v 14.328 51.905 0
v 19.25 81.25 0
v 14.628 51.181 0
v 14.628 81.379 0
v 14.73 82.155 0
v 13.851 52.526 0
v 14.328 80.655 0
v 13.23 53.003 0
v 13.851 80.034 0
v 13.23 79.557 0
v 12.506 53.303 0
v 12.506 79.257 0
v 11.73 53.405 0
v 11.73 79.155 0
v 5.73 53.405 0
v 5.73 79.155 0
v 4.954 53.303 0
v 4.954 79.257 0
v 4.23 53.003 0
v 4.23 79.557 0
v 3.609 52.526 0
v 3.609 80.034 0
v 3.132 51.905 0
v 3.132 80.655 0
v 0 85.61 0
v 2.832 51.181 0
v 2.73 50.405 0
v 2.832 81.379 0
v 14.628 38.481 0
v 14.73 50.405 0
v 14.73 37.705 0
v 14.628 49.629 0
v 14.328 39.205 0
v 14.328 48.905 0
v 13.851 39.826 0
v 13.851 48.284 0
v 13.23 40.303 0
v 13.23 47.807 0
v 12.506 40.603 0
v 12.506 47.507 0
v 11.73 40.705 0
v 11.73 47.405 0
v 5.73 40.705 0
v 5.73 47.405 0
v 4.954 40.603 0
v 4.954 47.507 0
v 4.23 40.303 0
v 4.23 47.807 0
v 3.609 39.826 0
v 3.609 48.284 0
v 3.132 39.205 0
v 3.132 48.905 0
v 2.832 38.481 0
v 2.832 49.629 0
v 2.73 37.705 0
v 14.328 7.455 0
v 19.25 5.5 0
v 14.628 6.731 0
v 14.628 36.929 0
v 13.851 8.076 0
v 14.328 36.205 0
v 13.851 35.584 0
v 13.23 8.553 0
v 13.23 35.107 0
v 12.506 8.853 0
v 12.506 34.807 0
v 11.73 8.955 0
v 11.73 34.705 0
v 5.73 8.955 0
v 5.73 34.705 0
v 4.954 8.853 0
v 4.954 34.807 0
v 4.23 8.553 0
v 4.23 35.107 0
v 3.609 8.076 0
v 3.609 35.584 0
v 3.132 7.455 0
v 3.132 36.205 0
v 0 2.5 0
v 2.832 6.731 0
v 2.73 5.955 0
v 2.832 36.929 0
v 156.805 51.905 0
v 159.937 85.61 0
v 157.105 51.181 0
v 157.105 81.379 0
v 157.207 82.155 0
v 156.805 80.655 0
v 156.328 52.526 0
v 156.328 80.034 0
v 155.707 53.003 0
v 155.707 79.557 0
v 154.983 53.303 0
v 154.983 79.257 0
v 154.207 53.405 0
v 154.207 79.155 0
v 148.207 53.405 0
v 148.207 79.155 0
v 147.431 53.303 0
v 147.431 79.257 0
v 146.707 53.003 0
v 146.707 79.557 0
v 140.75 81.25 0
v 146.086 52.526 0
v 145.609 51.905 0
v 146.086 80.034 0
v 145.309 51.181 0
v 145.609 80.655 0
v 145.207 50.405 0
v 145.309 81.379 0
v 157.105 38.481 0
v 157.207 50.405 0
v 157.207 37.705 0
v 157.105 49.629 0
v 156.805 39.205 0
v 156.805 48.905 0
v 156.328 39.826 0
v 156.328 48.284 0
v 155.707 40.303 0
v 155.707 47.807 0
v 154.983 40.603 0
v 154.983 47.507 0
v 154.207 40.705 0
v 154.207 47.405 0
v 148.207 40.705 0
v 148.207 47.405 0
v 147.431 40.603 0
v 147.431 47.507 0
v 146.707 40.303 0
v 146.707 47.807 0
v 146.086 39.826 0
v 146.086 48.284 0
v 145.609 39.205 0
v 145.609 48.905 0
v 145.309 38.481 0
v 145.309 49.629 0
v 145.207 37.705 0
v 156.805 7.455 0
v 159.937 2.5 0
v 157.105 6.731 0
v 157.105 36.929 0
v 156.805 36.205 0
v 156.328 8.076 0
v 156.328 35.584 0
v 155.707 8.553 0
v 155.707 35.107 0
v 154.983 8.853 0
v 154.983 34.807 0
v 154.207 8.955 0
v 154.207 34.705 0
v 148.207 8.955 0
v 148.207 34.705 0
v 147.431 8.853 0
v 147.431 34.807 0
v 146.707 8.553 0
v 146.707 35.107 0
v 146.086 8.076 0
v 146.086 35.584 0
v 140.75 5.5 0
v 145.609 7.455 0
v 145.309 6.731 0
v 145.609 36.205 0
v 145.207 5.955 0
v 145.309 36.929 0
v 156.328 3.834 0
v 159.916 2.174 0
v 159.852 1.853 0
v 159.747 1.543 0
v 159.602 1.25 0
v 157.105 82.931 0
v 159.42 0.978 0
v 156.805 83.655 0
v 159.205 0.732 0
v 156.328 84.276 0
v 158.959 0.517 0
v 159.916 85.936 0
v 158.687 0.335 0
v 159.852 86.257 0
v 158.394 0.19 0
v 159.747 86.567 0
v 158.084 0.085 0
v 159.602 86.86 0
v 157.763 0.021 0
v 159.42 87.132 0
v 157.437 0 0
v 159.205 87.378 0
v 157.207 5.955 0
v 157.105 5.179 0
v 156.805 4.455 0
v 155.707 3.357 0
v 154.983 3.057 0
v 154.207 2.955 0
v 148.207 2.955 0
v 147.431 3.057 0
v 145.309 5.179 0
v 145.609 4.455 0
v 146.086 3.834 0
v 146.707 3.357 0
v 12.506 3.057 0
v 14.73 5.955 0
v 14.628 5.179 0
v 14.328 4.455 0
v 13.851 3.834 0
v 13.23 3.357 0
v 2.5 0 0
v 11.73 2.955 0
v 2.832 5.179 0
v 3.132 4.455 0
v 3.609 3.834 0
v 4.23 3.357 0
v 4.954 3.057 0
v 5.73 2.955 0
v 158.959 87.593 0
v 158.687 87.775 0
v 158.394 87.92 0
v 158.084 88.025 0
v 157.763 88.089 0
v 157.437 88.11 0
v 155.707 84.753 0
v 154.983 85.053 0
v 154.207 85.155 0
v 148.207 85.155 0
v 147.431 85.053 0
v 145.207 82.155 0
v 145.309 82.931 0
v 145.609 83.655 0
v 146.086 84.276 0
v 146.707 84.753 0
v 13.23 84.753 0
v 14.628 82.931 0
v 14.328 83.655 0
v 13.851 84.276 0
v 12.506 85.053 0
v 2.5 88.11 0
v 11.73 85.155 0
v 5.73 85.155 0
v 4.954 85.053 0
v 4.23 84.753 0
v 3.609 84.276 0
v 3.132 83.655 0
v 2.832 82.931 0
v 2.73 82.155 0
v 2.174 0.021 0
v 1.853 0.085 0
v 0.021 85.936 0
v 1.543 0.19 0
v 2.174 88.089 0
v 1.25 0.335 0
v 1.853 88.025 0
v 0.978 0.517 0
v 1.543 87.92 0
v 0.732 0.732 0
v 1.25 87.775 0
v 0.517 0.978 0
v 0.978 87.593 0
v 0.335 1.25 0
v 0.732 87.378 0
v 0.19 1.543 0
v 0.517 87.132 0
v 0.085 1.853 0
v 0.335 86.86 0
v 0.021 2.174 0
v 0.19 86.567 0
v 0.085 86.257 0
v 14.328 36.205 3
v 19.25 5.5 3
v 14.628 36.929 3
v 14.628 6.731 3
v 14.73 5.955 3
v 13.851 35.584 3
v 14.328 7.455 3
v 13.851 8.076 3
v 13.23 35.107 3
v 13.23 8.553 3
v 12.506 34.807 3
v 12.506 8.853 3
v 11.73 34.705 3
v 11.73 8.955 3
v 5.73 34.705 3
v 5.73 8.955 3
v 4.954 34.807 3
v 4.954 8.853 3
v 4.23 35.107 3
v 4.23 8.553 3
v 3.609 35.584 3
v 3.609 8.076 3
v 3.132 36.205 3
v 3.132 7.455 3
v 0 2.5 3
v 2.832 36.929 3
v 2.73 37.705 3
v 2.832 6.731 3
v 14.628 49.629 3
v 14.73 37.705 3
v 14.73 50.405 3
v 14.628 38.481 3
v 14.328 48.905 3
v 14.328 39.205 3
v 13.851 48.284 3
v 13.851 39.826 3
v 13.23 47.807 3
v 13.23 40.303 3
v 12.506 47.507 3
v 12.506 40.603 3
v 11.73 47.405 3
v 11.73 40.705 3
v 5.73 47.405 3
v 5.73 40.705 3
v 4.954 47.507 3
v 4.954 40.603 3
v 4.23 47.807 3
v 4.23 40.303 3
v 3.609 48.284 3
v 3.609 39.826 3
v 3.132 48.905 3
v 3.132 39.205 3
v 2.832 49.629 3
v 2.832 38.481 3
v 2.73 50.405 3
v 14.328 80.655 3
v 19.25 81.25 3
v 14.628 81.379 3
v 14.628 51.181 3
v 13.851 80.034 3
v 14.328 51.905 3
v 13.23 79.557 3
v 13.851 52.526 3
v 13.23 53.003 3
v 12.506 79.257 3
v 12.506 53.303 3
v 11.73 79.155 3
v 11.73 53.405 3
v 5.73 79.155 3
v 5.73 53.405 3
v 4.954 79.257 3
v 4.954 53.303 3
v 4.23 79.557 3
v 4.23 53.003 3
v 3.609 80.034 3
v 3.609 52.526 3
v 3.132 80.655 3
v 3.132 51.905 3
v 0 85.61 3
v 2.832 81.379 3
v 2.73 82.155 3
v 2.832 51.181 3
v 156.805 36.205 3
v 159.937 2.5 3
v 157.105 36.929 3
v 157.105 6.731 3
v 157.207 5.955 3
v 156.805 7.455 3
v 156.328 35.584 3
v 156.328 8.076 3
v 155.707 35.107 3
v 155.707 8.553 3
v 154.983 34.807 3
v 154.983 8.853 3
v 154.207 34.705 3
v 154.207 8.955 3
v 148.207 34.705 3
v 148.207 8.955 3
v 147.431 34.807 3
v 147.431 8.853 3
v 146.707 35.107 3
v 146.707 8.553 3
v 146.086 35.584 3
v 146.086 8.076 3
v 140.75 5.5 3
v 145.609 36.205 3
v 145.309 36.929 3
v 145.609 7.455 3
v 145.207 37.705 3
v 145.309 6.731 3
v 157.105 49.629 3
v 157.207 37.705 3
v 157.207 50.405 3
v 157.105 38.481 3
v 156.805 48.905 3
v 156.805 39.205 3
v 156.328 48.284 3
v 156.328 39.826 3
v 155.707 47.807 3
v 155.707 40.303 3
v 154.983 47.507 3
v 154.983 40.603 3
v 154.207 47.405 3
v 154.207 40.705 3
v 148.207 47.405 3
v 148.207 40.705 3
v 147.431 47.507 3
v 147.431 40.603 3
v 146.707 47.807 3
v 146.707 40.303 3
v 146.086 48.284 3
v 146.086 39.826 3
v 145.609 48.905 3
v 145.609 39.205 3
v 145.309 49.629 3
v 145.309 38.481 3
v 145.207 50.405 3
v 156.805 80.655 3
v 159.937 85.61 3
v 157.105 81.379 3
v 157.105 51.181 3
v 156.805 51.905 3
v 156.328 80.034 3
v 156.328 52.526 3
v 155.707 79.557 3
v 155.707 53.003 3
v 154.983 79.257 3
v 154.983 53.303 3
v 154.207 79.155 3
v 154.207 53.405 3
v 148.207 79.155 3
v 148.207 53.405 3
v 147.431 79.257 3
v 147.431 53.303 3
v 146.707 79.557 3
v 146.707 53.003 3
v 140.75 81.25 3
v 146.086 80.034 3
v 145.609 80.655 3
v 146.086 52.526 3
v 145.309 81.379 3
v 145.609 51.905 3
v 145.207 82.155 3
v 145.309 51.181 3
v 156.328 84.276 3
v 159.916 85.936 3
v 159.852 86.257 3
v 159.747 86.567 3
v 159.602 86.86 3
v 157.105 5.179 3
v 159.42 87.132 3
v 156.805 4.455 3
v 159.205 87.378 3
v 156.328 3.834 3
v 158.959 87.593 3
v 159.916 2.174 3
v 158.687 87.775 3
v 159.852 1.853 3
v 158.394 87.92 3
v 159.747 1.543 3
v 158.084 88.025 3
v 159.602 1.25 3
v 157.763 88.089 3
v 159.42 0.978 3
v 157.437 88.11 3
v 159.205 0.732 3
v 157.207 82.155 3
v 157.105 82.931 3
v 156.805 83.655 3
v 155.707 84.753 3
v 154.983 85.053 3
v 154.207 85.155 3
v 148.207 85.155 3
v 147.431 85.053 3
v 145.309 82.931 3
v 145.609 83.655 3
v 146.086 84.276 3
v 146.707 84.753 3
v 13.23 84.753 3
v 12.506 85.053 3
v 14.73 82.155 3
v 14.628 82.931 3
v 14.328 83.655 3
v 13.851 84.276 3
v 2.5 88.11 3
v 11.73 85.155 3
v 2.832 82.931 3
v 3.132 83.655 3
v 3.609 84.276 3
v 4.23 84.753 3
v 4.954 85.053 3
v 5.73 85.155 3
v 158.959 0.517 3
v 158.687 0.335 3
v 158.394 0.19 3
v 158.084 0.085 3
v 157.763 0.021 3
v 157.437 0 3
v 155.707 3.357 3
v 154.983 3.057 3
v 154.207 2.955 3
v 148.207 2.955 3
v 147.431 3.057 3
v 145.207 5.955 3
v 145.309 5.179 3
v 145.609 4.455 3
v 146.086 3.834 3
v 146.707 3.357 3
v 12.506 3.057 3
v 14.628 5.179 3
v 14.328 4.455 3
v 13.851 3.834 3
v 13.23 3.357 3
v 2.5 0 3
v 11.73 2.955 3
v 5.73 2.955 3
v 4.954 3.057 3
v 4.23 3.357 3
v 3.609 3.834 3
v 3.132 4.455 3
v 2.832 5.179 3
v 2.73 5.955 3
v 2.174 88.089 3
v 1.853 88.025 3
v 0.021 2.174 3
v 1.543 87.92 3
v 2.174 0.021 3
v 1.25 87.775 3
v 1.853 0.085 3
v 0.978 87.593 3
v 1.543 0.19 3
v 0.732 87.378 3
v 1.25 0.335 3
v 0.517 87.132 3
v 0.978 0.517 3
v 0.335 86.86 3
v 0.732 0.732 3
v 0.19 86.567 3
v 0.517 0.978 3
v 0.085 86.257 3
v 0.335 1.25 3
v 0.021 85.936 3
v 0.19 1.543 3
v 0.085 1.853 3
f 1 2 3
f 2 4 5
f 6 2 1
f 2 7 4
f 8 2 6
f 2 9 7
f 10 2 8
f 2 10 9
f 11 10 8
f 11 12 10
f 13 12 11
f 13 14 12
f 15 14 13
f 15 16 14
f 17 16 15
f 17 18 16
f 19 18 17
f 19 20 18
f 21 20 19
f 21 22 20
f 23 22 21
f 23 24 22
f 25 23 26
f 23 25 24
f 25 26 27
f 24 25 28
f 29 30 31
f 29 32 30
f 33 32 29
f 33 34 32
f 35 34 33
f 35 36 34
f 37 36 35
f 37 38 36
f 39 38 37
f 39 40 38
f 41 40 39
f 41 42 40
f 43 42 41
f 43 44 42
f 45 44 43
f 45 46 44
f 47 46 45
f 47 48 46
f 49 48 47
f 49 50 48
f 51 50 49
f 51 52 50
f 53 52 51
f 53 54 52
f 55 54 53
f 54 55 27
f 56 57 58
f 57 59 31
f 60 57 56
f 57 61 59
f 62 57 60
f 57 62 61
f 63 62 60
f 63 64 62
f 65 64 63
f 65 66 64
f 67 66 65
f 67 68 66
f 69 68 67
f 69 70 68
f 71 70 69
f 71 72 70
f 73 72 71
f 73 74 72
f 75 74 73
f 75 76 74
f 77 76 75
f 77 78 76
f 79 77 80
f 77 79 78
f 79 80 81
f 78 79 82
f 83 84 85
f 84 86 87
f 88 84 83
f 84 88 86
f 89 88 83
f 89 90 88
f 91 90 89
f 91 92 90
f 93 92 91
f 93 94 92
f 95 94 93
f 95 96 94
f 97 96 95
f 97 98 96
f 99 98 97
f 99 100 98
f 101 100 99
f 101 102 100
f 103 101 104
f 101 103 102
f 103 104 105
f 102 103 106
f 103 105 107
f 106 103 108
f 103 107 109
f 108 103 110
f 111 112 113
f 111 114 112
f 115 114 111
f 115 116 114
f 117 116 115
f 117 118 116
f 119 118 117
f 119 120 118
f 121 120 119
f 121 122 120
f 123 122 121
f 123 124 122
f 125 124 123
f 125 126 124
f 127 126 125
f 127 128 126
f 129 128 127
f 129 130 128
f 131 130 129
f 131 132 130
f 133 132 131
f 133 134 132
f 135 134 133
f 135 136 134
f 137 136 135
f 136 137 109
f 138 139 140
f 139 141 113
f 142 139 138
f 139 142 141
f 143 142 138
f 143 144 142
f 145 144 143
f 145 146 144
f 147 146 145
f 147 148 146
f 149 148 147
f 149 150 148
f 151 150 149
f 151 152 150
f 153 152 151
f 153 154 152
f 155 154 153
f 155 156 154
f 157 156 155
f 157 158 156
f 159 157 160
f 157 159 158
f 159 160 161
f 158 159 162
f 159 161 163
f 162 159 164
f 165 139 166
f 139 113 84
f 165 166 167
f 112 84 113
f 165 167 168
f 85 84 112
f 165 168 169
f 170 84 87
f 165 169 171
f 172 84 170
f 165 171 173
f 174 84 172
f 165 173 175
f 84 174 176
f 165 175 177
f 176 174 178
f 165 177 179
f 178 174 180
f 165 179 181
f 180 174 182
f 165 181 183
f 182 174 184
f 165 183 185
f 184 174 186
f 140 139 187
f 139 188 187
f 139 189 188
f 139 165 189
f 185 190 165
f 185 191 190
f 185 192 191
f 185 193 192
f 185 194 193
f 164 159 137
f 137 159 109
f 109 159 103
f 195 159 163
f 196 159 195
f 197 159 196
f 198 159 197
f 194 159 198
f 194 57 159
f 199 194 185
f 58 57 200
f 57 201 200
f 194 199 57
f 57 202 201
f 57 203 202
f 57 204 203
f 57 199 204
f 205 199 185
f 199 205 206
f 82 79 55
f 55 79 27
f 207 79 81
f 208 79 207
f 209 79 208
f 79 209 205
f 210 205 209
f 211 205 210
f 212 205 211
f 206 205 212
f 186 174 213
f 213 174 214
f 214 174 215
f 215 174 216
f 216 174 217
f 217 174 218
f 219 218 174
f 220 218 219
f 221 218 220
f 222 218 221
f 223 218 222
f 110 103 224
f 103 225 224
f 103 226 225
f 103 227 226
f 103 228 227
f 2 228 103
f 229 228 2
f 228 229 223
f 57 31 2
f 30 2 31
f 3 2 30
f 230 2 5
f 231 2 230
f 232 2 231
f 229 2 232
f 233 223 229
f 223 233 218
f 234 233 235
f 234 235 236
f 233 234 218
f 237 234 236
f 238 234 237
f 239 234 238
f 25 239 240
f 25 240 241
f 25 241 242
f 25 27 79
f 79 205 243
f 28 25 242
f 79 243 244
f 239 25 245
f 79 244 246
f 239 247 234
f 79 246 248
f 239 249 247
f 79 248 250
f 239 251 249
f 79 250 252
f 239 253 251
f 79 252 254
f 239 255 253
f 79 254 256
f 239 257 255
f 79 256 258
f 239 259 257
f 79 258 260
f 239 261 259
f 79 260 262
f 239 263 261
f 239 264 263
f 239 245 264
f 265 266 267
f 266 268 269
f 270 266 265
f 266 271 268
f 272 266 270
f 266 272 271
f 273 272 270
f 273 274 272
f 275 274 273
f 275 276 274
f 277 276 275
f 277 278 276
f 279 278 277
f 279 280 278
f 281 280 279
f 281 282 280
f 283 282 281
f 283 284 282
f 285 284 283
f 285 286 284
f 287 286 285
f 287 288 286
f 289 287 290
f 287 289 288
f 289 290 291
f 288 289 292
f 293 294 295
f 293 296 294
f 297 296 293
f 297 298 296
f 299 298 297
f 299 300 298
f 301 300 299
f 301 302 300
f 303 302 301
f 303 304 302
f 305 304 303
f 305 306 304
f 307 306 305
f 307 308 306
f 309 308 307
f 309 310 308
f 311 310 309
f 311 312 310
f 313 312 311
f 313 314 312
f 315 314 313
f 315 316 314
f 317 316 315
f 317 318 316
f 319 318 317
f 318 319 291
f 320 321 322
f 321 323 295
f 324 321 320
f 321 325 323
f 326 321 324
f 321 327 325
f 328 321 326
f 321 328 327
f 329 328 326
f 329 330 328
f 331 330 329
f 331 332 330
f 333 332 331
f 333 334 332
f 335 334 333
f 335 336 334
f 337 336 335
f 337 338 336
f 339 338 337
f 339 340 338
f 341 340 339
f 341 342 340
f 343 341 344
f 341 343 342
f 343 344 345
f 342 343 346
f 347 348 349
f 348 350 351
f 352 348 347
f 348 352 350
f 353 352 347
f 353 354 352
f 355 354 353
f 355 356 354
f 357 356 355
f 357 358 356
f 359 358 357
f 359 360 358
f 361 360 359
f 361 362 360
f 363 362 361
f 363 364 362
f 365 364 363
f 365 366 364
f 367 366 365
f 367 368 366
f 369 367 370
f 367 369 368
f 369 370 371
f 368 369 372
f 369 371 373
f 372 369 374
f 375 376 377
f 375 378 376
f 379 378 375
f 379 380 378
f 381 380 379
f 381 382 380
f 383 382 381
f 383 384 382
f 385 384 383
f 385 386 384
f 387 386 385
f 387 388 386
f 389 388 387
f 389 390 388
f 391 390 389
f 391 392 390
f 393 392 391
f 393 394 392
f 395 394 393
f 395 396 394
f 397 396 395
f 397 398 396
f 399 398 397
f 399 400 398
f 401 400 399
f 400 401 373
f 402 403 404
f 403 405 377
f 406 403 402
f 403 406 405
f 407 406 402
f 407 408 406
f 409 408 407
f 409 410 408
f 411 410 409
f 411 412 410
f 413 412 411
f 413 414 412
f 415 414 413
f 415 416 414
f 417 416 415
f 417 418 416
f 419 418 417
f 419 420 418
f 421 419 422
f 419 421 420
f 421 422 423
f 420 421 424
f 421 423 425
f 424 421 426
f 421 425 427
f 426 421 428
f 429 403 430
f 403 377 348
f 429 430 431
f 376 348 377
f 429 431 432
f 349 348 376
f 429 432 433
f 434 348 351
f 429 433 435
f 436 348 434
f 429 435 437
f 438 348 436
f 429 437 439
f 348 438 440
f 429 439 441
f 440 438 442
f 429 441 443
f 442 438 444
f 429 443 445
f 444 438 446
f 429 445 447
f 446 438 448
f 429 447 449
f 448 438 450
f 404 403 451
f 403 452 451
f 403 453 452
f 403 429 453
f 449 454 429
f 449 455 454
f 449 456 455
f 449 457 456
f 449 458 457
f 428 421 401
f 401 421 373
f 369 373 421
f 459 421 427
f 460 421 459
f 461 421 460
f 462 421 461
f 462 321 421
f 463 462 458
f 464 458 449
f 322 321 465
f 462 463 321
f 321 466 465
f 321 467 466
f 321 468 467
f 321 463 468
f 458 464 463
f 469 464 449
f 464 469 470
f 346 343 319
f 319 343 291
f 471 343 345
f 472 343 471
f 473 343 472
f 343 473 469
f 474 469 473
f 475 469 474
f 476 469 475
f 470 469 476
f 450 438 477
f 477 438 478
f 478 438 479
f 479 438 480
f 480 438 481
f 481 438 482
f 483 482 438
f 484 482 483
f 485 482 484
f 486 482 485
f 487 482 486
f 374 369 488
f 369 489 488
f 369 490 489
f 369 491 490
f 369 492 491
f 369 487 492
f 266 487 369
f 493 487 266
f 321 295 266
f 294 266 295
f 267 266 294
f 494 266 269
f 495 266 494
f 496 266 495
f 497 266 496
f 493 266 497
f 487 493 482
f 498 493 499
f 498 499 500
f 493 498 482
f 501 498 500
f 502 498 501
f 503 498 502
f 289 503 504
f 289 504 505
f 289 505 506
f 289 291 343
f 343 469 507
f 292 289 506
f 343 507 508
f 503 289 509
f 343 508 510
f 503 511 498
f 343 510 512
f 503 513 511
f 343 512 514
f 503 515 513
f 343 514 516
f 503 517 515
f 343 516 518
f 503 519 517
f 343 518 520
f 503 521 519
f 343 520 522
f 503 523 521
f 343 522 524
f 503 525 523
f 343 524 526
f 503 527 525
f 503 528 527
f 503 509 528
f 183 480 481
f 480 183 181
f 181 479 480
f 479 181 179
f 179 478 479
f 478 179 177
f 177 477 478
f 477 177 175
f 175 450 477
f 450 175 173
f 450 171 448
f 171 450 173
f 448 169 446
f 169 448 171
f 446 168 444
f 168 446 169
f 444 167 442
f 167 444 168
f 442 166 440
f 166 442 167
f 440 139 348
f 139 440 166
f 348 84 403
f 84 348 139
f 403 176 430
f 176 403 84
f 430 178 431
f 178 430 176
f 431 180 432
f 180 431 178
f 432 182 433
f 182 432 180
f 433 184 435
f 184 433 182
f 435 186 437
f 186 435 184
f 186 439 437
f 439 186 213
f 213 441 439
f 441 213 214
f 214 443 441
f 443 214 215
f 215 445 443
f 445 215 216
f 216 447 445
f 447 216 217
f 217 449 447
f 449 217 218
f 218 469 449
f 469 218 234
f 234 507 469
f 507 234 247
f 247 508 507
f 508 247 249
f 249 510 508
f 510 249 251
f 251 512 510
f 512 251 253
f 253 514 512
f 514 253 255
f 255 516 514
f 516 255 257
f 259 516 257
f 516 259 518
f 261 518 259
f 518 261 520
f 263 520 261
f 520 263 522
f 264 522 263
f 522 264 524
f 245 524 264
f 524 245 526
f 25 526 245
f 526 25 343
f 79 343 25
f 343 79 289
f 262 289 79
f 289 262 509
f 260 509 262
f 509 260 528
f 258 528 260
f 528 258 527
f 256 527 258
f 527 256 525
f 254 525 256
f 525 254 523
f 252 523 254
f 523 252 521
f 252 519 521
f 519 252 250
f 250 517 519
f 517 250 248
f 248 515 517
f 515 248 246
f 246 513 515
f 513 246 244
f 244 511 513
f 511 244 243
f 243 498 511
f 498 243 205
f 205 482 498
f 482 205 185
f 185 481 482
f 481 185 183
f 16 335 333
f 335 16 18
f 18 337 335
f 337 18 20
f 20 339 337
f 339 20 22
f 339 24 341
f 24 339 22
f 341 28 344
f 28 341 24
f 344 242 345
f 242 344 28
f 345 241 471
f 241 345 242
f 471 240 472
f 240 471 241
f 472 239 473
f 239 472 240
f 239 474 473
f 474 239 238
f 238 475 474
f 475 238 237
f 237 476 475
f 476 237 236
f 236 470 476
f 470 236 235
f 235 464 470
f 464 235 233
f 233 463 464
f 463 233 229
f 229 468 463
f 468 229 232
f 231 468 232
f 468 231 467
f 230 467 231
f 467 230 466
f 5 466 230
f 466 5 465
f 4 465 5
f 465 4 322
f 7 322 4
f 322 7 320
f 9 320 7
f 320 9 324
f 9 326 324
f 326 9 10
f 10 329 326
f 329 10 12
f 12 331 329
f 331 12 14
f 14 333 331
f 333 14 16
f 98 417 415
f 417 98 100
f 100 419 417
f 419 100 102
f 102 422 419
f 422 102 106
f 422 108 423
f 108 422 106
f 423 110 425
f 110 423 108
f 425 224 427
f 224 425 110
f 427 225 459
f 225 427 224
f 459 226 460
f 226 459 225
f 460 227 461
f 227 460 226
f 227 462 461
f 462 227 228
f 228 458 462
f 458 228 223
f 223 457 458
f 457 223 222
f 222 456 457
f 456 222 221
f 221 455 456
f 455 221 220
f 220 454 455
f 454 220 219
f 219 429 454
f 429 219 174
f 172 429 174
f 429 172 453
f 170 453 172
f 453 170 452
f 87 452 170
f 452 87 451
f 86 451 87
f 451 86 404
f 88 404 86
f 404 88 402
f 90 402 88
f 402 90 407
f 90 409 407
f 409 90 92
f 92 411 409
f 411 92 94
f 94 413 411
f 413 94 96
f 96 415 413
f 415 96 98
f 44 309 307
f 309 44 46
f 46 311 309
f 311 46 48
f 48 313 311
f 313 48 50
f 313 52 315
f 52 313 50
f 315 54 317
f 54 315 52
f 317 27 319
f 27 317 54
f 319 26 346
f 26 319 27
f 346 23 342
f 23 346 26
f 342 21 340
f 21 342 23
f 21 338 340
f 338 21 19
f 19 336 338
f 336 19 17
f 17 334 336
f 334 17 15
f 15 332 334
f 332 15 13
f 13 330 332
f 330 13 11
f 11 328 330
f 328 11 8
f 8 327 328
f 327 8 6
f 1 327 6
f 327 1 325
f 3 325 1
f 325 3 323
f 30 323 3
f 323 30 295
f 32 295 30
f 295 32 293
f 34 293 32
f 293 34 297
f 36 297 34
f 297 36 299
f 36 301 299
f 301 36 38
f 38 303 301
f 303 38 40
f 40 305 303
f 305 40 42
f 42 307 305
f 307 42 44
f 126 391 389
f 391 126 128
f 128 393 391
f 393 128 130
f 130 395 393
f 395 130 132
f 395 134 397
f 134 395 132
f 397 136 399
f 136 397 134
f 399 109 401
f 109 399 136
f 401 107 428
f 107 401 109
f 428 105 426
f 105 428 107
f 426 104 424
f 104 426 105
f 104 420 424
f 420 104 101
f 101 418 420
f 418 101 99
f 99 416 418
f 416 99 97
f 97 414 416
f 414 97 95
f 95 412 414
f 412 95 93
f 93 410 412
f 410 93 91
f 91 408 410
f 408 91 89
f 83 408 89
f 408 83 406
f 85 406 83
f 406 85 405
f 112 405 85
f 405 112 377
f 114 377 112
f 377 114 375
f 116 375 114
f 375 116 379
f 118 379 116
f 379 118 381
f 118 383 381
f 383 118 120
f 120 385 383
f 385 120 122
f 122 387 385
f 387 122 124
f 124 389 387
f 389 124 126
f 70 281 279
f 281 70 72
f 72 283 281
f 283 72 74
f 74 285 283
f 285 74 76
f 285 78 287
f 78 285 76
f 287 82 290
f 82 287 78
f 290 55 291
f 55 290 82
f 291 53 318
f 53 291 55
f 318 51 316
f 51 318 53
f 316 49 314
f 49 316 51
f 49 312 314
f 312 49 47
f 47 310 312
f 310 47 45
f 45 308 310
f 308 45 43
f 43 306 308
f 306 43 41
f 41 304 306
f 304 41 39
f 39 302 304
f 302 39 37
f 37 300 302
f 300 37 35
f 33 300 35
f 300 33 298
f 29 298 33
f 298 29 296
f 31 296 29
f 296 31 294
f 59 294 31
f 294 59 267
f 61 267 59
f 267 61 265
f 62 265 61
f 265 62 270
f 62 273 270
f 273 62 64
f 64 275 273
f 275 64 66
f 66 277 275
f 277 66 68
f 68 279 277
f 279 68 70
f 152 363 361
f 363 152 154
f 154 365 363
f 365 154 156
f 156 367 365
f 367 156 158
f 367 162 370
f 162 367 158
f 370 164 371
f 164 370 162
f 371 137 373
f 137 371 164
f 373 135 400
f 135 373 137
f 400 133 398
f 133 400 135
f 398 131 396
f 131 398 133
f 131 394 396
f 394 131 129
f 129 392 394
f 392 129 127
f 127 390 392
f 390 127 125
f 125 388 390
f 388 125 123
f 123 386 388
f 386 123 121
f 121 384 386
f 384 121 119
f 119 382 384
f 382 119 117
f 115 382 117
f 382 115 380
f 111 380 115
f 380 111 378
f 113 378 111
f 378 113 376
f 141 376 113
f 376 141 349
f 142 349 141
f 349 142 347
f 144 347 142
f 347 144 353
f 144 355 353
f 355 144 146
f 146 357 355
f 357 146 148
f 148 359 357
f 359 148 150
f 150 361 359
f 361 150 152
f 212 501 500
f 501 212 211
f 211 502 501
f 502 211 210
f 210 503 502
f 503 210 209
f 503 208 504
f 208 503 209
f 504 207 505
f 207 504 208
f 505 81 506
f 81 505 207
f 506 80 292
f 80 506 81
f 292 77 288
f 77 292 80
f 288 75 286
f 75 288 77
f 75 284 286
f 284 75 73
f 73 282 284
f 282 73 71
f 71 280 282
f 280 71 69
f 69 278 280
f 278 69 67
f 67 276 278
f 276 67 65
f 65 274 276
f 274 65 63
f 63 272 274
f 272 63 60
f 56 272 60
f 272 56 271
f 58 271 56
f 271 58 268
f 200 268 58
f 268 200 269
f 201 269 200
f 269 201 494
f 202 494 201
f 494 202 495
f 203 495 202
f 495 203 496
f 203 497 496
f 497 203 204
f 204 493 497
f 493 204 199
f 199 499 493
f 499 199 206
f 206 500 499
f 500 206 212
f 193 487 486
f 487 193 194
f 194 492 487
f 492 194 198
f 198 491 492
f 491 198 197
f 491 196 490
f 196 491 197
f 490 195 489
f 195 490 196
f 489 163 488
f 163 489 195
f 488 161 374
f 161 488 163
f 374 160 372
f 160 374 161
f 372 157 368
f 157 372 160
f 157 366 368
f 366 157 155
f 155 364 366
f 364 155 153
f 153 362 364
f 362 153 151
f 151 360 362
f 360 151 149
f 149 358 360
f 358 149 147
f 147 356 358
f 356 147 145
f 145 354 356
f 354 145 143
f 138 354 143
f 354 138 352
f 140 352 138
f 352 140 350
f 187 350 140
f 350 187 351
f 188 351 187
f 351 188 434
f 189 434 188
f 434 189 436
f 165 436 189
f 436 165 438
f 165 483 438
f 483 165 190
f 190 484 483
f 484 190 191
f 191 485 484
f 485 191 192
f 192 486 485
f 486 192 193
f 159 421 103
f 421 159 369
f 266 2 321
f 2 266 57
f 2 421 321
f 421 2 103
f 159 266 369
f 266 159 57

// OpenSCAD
// file: rack_plate.scad
/**
 * OpenSCAD Rack Plate Library
 * 
 * Conforms to standards defined in Wikipedia for Rack Units (19-inch racks).
 * Formula for height: h = 44.45 * n - 0.79 (mm)
 * Standard mounting width: 465.14 mm (center-to-center)
 */

// --- Default Values ---
DEFAULT_U_COUNT = 1;
DEFAULT_THICKNESS = 3;
DEFAULT_WIDTH_INCHES = 6.5;
DEFAULT_CORNER_RADIUS = 2.5;
DEFAULT_HOLE_DIAMETER = 6;
DEFAULT_SLOT_LENGTH = 12; // At least twice the diameter (6mm * 2)

// --- Modules ---

/**
 * Generates a rack plate.
 * 
 * @param u_count Number of rack units (n)
 * @param thickness Plate thickness in mm
 * @param width_inches Nominal width of the rack in inches (default 19)
 * @param corner_radius Radius for the outer corners in mm
 * @param hole_diameter Diameter of the mounting holes in mm
 * @param slot_length Total length of the oblong mounting holes in mm
 */
module rack_plate(
    u_count         = DEFAULT_U_COUNT,
    thickness       = DEFAULT_THICKNESS,
    width_inches    = DEFAULT_WIDTH_INCHES,
    corner_radius   = DEFAULT_CORNER_RADIUS,
    hole_diameter   = DEFAULT_HOLE_DIAMETER,
    slot_length     = DEFAULT_SLOT_LENGTH
) {
    // Requirements validation
    assert(width_inches >= 5.5 && width_inches <= 23, "Width must be between 5.5 and 23 inches");

    // Constants based on requirements
    u_height_mm = 44.45;
    height_offset_mm = 0.79;
    
    // Formula: h = 44.45 * n - 0.79
    total_height = (u_height_mm * u_count) - height_offset_mm;
    
    // 19-inch rack mounting width (center to center)
    // Wikipedia: 18.313 in = 465.14 mm
    standard_mounting_width = 465.14; 
    standard_total_width = 19 * 25.4; // 482.6 mm
    
    // Total width of the plate. 
    total_width = width_inches * 25.4;
    
    // Flange width calculation (distance from edge to mounting hole center)
    // "It is critical that the mounting holes retain their position relative to the adjacent ends of the panel"
    // For a standard 19" rack, the offset from edge to hole center is:
    edge_to_hole_offset = (standard_total_width - standard_mounting_width) / 2;

    linear_extrude(height = thickness) 
    {
        difference() 
        {
            // Main Plate Body with rounded corners
            rounded_rect(total_width, total_height, corner_radius);

            // Mounting Holes
            // "The code should generate flanges with 2 rather than three holes per 1 U of height."
            if (u_count >= 1.0) 
            {
                for (u = [0 : floor(u_count) - 1]) 
                {
                    u_base_y = u * u_height_mm;
                    hole_spacing = 31.75; 
                    y_offset = (u_height_mm - hole_spacing) / 2;
                    
                    y_pos1 = u_base_y + y_offset;
                    y_pos2 = u_base_y + y_offset + hole_spacing;
    
                    // Center holes in the total_height
                    // Since total_height = u_count * 44.45 - 0.79, 
                    // the gaps are at the top and bottom of the stack.
                    // We shift everything by (0.79 / 2) to center it if we consider 
                    // the 0.79 to be distributed.
                    // Actually, the previous code had a formula for center_shift.
                    total_nominal_height = u_height_mm * u_count;
                    center_shift = (total_nominal_height - total_height) / 2;
                    
                    p1 = y_pos1 - center_shift;
                    p2 = y_pos2 - center_shift;
    
                    // Left Holes (Oblong)
                    translate([edge_to_hole_offset, p1])
                    {
                        oblong_hole(hole_diameter, slot_length);
                    }
                    translate([edge_to_hole_offset, p2]) 
                    {
                        oblong_hole(hole_diameter, slot_length);
                    }   
                    // Right Holes (Oblong)
                    translate([total_width - edge_to_hole_offset, p1]) 
                    {
                        oblong_hole(hole_diameter, slot_length);
                    }
                    translate([total_width - edge_to_hole_offset, p2]) 
                    {
                        oblong_hole(hole_diameter, slot_length);
                    }
                }
            }
            else if(u_count < 1.0)
            {
                // There can only be one mounting hole on each side, if any.
                u = 0;
                u_base_y = u * u_height_mm/2;
                hole_spacing = 31.75; 
                y_offset = (u_height_mm - hole_spacing) / 2;
                
                y_pos1 = u_base_y + u_height_mm/4;

                // Center holes in the total_height
                // Since total_height = u_count * 44.45 - 0.79, 
                // the gaps are at the top and bottom of the stack.
                // We shift everything by (0.79 / 2) to center it if we consider 
                // the 0.79 to be distributed.
                // Actually, the previous code had a formula for center_shift.
                total_nominal_height = u_height_mm * u_count;
                center_shift = (total_nominal_height - total_height) / 2;
                
                p1 = y_pos1 - center_shift;

                // Left Holes (Oblong vertical)
                translate([edge_to_hole_offset,  p1])
                {
                    rotate([0, 0, 90])
                    {
                        oblong_hole(hole_diameter, slot_length);
                    }
                }
                    
                // Right Holes (Oblong vertical)
                translate([total_width - edge_to_hole_offset, p1])
                {
                    rotate([0, 0, 90])
                    {
                        oblong_hole(hole_diameter, slot_length);
                    }
                }
            }
        }
    }
}

/**
 * Helper for oblong (slotted) hole
 */
module oblong_hole(d, l) 
{
    hull() 
    {
        translate([-(l - d) / 2, 0]) circle(d = d, $fn = 24);
        translate([(l - d) / 2, 0]) circle(d = d, $fn = 24);
    }
}

/**
 * Helper for rounded rectangle 2D shape
 */
module rounded_rect(w, h, r) 
{
    translate([r, r, 0])
    {
        minkowski() 
        {
            square([w - 2 * r, h - 2 * r]);
            circle(r = r, $fn = 48);
        }
    } 
}

// --- Example Usage ---
// This will render when the file is opened directly in OpenSCAD
// but won't interfere when included in other files.

rack_plate(u_count = 0.75, width_inches= 6.5);
// main file
// Simple rack panel for Pi Display 2 (small)
//
// (c) 2026 David M. Witten II
//===================================================================
// Constant Parameters
use <rack_plate.scad>
in2mm               = 25.41;  // mm / in

plate_length        = 16.0;   // mm
plate_width         = 160.0;  // mm
plate_thickness     = 3.0;    // mm

mnt_hole_width      = 7.5;    // mm
mnt_hole_len        = 11.0;   // mm

//===================================================================
// Modifiable Parameters


//===================================================================
// Main()
module cutout()
{
    display_cutout = cube([120, 75, 16]);
}

//===================================================================
// main()
module main()
{
    difference()
    {
        rack_plate(u_count = 2, thickness = plate_thickness, width_inches = (plate_length/(in2mm/10)));
        translate([(140 - 120.75), 5.5, -8])
        {
            cube([121.5, 75.75, 16]);
        }
    }
}

main();
